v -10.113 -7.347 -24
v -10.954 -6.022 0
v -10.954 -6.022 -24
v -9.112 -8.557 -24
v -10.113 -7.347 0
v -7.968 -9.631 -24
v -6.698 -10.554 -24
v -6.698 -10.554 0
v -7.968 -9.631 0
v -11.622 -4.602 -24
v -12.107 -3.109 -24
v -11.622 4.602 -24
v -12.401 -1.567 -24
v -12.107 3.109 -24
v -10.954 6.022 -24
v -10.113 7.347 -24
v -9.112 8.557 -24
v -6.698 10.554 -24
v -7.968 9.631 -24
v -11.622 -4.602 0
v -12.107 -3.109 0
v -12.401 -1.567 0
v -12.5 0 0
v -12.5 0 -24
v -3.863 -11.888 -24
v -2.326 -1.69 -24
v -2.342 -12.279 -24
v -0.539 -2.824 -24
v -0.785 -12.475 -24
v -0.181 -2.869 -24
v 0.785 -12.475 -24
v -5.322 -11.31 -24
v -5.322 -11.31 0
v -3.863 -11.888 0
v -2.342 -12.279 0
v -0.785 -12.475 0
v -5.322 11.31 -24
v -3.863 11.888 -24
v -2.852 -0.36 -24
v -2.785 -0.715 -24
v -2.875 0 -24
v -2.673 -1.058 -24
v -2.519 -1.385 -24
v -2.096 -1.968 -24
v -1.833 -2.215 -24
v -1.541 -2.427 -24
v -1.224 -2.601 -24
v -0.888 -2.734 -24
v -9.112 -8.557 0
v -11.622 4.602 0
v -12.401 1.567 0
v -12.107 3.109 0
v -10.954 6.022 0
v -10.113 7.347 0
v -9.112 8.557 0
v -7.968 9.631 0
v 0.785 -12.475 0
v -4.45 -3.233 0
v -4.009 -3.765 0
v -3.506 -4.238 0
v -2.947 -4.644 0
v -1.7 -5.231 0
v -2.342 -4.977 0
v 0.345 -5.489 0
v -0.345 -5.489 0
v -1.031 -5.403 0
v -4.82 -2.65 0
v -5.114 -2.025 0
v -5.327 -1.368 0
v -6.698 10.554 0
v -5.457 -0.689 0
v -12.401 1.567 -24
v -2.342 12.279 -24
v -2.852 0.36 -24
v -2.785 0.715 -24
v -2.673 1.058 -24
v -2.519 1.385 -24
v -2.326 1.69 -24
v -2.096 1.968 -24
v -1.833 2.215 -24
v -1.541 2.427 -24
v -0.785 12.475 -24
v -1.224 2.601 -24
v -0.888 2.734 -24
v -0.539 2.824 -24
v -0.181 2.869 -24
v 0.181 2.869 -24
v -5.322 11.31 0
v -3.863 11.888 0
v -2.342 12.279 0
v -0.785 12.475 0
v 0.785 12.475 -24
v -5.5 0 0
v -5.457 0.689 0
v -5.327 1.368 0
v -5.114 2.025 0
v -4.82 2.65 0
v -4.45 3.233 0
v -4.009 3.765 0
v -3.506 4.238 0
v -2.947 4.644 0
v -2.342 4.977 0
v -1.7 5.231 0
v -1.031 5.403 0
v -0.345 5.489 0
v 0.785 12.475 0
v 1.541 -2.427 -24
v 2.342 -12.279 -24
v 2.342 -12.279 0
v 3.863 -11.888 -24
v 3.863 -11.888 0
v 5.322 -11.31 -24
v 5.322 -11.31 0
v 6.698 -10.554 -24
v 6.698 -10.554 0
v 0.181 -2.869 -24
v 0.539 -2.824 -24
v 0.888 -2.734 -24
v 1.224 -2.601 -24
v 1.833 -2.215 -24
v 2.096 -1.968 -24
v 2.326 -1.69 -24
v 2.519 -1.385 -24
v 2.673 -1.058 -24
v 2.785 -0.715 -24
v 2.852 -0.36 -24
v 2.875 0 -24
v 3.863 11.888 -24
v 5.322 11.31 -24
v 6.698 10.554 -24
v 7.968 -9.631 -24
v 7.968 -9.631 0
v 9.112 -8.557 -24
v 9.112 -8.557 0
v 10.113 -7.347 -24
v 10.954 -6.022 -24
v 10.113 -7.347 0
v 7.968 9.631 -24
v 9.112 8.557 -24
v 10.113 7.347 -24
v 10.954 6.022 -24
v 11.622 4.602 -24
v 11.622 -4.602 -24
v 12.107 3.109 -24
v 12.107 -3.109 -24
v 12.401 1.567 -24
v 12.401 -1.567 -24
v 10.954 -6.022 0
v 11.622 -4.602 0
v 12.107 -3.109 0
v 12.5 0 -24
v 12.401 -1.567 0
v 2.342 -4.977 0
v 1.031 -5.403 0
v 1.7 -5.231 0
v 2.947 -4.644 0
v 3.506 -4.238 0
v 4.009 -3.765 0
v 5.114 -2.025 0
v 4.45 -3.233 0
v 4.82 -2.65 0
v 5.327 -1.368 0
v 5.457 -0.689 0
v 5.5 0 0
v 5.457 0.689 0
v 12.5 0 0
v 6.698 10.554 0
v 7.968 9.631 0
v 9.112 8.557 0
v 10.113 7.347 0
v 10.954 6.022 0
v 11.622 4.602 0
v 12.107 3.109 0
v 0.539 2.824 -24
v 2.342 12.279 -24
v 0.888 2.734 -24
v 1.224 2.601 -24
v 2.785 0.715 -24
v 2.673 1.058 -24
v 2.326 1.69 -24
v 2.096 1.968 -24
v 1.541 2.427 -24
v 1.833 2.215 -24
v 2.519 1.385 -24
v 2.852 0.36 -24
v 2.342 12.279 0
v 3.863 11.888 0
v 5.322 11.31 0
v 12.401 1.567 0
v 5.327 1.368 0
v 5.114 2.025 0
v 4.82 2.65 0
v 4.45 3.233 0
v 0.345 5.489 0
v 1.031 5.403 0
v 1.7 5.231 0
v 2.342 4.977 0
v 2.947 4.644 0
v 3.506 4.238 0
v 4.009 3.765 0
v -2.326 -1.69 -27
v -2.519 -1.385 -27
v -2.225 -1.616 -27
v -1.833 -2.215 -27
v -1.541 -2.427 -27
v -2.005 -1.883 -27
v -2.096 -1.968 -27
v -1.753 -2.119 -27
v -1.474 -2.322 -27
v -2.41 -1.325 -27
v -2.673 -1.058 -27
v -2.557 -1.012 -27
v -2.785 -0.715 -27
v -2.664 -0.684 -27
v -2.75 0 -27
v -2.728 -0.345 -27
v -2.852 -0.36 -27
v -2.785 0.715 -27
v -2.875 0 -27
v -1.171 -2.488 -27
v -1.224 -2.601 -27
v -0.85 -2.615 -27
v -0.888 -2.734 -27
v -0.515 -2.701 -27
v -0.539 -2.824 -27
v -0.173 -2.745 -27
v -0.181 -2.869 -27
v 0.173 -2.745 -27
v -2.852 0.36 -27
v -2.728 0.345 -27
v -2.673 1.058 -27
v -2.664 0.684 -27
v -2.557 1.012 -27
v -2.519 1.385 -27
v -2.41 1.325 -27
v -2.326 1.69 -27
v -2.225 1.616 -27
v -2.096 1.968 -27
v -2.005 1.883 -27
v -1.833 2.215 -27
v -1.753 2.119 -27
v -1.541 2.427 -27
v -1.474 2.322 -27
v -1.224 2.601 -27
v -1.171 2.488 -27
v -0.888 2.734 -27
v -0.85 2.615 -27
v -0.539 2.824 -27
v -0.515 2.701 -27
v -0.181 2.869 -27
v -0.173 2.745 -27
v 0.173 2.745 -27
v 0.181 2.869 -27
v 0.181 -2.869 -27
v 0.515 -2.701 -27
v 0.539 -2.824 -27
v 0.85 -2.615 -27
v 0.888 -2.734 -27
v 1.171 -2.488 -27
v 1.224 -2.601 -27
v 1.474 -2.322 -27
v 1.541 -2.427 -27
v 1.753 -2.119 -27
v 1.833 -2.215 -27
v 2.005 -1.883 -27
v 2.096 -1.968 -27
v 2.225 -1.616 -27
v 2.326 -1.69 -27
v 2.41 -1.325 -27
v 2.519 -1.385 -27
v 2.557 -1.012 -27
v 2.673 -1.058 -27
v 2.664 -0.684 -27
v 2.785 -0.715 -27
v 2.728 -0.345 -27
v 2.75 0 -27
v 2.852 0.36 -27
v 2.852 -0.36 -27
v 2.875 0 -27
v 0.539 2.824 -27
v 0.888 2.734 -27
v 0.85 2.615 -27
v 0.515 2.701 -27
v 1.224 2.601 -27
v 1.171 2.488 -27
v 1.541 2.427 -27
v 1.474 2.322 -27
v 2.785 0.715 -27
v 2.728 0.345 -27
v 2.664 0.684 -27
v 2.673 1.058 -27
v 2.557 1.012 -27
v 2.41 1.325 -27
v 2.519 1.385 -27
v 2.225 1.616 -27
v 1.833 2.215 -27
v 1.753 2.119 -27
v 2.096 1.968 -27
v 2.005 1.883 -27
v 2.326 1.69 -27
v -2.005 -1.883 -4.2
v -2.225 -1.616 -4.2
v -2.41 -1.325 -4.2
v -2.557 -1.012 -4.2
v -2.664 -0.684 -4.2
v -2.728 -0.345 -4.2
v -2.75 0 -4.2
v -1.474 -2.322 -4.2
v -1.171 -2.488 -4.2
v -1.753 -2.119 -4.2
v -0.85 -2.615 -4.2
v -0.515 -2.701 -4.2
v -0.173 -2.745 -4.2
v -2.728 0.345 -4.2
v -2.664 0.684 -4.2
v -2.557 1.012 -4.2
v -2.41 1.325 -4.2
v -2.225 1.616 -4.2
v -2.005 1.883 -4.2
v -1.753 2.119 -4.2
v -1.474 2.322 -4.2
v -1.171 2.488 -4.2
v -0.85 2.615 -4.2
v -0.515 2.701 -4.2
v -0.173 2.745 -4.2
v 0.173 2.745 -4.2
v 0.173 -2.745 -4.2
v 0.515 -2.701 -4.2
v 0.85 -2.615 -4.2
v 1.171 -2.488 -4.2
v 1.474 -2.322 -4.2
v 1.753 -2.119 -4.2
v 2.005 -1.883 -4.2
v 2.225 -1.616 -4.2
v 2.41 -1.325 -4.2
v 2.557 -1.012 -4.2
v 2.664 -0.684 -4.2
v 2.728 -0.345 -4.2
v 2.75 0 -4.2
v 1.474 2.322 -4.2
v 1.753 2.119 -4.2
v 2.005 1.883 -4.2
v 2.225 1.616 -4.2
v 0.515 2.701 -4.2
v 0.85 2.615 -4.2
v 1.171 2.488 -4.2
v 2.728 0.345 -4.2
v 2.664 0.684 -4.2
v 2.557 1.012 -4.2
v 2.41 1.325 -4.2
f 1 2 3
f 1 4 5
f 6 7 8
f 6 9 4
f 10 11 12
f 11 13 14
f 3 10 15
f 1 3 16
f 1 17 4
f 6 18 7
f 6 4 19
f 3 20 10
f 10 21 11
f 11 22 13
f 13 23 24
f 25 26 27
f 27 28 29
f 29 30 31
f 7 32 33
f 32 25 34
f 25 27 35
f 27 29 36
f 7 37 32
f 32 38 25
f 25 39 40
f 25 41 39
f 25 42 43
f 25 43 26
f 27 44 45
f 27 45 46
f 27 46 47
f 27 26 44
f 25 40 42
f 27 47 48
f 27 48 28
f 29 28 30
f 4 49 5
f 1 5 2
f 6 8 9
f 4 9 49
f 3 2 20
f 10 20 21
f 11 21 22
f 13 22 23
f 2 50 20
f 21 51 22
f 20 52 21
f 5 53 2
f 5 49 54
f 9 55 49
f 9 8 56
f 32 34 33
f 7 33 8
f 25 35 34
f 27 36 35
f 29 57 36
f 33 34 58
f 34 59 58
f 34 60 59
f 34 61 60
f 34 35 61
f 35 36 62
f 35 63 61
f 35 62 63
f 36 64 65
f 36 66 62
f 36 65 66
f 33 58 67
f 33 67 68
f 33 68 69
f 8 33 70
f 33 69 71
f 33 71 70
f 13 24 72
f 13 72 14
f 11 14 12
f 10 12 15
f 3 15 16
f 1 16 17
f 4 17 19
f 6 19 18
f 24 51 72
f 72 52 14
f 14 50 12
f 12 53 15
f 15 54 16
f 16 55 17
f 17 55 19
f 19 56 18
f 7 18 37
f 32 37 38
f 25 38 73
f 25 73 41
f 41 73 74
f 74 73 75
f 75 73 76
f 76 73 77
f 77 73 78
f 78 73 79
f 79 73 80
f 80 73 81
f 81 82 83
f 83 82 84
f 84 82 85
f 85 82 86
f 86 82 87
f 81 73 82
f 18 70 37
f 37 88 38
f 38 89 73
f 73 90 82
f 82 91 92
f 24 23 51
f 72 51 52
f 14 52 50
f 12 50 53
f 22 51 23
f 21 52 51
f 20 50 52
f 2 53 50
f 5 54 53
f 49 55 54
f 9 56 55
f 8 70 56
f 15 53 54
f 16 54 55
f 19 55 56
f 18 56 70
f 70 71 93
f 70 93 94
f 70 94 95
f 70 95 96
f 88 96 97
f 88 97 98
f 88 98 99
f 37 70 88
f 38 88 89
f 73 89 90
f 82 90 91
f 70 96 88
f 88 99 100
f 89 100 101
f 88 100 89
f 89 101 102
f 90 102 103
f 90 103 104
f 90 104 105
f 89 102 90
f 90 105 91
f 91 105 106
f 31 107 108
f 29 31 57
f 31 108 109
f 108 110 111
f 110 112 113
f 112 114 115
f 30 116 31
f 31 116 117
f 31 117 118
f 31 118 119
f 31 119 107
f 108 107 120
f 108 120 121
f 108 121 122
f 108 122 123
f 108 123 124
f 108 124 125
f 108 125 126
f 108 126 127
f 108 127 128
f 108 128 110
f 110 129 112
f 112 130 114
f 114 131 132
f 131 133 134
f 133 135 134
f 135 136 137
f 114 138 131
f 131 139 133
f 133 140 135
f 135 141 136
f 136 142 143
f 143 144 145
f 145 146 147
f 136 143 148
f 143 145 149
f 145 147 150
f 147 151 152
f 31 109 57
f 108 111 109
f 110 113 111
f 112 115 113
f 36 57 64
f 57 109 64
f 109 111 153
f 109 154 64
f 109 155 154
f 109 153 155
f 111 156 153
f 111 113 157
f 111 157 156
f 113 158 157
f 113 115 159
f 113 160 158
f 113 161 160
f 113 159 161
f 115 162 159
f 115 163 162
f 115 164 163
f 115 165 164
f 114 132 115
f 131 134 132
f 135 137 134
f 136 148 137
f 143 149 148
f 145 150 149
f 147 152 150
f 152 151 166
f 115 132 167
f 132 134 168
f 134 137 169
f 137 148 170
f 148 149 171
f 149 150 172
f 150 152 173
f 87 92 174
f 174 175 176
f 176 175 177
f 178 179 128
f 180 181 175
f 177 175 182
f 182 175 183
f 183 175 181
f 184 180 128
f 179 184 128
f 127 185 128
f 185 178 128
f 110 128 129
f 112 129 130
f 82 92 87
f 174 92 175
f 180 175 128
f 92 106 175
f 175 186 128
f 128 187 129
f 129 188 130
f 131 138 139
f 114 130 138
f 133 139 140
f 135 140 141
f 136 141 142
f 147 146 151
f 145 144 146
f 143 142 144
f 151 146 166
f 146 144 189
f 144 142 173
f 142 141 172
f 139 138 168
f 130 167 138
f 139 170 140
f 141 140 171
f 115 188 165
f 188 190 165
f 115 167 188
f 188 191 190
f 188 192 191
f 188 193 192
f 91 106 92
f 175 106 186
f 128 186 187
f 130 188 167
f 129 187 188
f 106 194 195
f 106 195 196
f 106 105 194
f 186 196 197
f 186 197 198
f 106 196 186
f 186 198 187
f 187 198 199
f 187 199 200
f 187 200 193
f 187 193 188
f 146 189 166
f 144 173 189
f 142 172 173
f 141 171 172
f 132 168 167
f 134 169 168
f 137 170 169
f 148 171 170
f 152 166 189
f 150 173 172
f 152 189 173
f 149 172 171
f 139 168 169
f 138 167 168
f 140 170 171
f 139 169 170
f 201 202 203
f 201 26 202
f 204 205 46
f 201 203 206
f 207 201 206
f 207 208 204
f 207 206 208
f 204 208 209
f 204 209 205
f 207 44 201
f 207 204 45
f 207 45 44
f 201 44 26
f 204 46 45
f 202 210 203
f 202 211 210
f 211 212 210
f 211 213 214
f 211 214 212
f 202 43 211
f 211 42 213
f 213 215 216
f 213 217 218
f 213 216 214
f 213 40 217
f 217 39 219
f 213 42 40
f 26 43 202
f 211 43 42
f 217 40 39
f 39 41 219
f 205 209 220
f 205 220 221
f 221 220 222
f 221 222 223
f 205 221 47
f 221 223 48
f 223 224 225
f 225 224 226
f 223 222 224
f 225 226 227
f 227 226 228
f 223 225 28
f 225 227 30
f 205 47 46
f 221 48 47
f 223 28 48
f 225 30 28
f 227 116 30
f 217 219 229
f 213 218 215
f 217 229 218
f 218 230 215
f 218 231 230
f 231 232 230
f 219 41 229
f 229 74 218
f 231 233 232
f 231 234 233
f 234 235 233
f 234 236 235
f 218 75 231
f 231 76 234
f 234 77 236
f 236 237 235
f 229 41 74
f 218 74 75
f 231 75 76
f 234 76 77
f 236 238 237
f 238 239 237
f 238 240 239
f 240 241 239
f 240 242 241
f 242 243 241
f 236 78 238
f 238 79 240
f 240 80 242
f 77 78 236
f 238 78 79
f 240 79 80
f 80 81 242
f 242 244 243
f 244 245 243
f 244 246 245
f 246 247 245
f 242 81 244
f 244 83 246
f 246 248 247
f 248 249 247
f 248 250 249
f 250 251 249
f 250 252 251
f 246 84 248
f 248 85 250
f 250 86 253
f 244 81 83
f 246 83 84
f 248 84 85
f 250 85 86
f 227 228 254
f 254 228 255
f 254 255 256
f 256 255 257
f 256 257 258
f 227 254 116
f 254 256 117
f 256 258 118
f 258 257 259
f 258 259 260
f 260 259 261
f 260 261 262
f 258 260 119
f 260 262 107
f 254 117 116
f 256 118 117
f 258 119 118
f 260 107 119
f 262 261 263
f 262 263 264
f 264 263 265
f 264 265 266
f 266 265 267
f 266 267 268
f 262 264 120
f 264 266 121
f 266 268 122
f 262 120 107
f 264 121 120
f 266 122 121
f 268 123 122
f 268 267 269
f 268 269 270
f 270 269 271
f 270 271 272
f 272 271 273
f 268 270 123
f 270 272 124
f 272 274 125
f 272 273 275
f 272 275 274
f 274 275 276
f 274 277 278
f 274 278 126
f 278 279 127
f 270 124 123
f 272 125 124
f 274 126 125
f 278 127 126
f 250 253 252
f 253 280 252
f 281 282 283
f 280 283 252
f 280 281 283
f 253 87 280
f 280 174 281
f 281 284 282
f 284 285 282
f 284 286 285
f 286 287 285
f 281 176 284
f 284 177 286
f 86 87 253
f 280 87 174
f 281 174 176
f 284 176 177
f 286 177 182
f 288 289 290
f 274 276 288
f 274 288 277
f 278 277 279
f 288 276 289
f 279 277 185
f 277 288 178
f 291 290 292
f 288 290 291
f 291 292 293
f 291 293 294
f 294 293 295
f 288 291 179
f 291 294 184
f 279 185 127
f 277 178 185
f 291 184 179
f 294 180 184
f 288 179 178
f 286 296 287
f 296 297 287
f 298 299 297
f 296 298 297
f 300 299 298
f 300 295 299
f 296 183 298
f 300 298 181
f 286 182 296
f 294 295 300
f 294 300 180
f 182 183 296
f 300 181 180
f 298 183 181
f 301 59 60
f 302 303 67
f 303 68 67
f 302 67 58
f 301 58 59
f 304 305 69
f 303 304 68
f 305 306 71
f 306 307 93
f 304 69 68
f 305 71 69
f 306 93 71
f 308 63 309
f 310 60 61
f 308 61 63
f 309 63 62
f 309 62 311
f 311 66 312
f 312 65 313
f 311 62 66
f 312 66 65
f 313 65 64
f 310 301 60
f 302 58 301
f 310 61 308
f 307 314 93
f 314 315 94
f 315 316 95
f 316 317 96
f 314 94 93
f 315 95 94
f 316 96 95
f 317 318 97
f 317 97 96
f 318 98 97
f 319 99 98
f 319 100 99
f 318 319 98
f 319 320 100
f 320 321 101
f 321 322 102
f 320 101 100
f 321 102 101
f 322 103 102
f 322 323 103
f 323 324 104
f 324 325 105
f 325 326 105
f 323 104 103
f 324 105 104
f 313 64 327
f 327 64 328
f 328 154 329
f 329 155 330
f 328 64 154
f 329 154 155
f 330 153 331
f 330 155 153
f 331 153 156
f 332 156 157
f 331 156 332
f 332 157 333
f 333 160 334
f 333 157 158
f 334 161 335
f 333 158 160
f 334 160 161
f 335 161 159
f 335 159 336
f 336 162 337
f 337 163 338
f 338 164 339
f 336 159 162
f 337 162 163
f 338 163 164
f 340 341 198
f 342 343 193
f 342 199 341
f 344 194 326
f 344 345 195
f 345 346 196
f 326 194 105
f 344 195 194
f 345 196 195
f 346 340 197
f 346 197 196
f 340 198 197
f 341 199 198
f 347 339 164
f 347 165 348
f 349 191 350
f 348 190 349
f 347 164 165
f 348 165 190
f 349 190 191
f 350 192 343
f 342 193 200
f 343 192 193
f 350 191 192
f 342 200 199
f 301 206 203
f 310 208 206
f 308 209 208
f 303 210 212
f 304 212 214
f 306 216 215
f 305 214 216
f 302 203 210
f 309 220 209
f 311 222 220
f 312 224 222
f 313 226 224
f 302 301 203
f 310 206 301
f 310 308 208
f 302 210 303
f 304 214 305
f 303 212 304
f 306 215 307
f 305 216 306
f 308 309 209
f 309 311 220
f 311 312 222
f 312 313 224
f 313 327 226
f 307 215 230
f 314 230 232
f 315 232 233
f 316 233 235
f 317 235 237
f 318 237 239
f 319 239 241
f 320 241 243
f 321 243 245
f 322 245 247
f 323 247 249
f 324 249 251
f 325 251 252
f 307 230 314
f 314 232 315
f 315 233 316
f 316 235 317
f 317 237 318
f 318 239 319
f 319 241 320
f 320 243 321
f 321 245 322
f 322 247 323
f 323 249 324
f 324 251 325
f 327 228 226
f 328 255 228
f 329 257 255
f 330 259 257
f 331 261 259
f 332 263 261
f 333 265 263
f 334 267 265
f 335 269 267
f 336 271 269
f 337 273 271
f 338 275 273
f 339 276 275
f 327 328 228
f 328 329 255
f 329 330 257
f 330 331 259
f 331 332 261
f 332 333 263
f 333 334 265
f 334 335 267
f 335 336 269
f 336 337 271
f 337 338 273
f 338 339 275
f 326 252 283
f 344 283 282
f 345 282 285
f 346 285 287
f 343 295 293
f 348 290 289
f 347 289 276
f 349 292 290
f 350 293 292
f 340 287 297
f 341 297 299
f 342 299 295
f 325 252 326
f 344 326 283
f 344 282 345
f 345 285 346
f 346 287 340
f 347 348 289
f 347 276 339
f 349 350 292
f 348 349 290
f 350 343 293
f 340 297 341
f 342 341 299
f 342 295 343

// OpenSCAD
$fn = 50;

difference() {
	union() {
		translate(v = [0, 0, -24.0]) {
			cylinder(h = 24, r = 12.5);
		}
		#translate(v = [0, 0, -27.0]) {
			cylinder(h = 27, r = 2.875);
		}
	}
	union() {
		translate(v = [0, 0, 0]) {
			rotate(a = [0, 0, 0]) {
				difference() {
					union() {
						translate(v = [0, 0, -27.0]) {
							cylinder(h = 27, r = 2.25);
						}
						translate(v = [0, 0, -4.2]) {
							cylinder(h = 4.2, r1 = 2.75, r2 = 5.5);
						}
						translate(v = [0, 0, -27.0]) {
							cylinder(h = 27, r = 2.75);
						}
						translate(v = [0, 0, -27.0]) {
							cylinder(h = 27, r = 2.25);
						}
					}
					union();
				}
			}
		}
	}
}
